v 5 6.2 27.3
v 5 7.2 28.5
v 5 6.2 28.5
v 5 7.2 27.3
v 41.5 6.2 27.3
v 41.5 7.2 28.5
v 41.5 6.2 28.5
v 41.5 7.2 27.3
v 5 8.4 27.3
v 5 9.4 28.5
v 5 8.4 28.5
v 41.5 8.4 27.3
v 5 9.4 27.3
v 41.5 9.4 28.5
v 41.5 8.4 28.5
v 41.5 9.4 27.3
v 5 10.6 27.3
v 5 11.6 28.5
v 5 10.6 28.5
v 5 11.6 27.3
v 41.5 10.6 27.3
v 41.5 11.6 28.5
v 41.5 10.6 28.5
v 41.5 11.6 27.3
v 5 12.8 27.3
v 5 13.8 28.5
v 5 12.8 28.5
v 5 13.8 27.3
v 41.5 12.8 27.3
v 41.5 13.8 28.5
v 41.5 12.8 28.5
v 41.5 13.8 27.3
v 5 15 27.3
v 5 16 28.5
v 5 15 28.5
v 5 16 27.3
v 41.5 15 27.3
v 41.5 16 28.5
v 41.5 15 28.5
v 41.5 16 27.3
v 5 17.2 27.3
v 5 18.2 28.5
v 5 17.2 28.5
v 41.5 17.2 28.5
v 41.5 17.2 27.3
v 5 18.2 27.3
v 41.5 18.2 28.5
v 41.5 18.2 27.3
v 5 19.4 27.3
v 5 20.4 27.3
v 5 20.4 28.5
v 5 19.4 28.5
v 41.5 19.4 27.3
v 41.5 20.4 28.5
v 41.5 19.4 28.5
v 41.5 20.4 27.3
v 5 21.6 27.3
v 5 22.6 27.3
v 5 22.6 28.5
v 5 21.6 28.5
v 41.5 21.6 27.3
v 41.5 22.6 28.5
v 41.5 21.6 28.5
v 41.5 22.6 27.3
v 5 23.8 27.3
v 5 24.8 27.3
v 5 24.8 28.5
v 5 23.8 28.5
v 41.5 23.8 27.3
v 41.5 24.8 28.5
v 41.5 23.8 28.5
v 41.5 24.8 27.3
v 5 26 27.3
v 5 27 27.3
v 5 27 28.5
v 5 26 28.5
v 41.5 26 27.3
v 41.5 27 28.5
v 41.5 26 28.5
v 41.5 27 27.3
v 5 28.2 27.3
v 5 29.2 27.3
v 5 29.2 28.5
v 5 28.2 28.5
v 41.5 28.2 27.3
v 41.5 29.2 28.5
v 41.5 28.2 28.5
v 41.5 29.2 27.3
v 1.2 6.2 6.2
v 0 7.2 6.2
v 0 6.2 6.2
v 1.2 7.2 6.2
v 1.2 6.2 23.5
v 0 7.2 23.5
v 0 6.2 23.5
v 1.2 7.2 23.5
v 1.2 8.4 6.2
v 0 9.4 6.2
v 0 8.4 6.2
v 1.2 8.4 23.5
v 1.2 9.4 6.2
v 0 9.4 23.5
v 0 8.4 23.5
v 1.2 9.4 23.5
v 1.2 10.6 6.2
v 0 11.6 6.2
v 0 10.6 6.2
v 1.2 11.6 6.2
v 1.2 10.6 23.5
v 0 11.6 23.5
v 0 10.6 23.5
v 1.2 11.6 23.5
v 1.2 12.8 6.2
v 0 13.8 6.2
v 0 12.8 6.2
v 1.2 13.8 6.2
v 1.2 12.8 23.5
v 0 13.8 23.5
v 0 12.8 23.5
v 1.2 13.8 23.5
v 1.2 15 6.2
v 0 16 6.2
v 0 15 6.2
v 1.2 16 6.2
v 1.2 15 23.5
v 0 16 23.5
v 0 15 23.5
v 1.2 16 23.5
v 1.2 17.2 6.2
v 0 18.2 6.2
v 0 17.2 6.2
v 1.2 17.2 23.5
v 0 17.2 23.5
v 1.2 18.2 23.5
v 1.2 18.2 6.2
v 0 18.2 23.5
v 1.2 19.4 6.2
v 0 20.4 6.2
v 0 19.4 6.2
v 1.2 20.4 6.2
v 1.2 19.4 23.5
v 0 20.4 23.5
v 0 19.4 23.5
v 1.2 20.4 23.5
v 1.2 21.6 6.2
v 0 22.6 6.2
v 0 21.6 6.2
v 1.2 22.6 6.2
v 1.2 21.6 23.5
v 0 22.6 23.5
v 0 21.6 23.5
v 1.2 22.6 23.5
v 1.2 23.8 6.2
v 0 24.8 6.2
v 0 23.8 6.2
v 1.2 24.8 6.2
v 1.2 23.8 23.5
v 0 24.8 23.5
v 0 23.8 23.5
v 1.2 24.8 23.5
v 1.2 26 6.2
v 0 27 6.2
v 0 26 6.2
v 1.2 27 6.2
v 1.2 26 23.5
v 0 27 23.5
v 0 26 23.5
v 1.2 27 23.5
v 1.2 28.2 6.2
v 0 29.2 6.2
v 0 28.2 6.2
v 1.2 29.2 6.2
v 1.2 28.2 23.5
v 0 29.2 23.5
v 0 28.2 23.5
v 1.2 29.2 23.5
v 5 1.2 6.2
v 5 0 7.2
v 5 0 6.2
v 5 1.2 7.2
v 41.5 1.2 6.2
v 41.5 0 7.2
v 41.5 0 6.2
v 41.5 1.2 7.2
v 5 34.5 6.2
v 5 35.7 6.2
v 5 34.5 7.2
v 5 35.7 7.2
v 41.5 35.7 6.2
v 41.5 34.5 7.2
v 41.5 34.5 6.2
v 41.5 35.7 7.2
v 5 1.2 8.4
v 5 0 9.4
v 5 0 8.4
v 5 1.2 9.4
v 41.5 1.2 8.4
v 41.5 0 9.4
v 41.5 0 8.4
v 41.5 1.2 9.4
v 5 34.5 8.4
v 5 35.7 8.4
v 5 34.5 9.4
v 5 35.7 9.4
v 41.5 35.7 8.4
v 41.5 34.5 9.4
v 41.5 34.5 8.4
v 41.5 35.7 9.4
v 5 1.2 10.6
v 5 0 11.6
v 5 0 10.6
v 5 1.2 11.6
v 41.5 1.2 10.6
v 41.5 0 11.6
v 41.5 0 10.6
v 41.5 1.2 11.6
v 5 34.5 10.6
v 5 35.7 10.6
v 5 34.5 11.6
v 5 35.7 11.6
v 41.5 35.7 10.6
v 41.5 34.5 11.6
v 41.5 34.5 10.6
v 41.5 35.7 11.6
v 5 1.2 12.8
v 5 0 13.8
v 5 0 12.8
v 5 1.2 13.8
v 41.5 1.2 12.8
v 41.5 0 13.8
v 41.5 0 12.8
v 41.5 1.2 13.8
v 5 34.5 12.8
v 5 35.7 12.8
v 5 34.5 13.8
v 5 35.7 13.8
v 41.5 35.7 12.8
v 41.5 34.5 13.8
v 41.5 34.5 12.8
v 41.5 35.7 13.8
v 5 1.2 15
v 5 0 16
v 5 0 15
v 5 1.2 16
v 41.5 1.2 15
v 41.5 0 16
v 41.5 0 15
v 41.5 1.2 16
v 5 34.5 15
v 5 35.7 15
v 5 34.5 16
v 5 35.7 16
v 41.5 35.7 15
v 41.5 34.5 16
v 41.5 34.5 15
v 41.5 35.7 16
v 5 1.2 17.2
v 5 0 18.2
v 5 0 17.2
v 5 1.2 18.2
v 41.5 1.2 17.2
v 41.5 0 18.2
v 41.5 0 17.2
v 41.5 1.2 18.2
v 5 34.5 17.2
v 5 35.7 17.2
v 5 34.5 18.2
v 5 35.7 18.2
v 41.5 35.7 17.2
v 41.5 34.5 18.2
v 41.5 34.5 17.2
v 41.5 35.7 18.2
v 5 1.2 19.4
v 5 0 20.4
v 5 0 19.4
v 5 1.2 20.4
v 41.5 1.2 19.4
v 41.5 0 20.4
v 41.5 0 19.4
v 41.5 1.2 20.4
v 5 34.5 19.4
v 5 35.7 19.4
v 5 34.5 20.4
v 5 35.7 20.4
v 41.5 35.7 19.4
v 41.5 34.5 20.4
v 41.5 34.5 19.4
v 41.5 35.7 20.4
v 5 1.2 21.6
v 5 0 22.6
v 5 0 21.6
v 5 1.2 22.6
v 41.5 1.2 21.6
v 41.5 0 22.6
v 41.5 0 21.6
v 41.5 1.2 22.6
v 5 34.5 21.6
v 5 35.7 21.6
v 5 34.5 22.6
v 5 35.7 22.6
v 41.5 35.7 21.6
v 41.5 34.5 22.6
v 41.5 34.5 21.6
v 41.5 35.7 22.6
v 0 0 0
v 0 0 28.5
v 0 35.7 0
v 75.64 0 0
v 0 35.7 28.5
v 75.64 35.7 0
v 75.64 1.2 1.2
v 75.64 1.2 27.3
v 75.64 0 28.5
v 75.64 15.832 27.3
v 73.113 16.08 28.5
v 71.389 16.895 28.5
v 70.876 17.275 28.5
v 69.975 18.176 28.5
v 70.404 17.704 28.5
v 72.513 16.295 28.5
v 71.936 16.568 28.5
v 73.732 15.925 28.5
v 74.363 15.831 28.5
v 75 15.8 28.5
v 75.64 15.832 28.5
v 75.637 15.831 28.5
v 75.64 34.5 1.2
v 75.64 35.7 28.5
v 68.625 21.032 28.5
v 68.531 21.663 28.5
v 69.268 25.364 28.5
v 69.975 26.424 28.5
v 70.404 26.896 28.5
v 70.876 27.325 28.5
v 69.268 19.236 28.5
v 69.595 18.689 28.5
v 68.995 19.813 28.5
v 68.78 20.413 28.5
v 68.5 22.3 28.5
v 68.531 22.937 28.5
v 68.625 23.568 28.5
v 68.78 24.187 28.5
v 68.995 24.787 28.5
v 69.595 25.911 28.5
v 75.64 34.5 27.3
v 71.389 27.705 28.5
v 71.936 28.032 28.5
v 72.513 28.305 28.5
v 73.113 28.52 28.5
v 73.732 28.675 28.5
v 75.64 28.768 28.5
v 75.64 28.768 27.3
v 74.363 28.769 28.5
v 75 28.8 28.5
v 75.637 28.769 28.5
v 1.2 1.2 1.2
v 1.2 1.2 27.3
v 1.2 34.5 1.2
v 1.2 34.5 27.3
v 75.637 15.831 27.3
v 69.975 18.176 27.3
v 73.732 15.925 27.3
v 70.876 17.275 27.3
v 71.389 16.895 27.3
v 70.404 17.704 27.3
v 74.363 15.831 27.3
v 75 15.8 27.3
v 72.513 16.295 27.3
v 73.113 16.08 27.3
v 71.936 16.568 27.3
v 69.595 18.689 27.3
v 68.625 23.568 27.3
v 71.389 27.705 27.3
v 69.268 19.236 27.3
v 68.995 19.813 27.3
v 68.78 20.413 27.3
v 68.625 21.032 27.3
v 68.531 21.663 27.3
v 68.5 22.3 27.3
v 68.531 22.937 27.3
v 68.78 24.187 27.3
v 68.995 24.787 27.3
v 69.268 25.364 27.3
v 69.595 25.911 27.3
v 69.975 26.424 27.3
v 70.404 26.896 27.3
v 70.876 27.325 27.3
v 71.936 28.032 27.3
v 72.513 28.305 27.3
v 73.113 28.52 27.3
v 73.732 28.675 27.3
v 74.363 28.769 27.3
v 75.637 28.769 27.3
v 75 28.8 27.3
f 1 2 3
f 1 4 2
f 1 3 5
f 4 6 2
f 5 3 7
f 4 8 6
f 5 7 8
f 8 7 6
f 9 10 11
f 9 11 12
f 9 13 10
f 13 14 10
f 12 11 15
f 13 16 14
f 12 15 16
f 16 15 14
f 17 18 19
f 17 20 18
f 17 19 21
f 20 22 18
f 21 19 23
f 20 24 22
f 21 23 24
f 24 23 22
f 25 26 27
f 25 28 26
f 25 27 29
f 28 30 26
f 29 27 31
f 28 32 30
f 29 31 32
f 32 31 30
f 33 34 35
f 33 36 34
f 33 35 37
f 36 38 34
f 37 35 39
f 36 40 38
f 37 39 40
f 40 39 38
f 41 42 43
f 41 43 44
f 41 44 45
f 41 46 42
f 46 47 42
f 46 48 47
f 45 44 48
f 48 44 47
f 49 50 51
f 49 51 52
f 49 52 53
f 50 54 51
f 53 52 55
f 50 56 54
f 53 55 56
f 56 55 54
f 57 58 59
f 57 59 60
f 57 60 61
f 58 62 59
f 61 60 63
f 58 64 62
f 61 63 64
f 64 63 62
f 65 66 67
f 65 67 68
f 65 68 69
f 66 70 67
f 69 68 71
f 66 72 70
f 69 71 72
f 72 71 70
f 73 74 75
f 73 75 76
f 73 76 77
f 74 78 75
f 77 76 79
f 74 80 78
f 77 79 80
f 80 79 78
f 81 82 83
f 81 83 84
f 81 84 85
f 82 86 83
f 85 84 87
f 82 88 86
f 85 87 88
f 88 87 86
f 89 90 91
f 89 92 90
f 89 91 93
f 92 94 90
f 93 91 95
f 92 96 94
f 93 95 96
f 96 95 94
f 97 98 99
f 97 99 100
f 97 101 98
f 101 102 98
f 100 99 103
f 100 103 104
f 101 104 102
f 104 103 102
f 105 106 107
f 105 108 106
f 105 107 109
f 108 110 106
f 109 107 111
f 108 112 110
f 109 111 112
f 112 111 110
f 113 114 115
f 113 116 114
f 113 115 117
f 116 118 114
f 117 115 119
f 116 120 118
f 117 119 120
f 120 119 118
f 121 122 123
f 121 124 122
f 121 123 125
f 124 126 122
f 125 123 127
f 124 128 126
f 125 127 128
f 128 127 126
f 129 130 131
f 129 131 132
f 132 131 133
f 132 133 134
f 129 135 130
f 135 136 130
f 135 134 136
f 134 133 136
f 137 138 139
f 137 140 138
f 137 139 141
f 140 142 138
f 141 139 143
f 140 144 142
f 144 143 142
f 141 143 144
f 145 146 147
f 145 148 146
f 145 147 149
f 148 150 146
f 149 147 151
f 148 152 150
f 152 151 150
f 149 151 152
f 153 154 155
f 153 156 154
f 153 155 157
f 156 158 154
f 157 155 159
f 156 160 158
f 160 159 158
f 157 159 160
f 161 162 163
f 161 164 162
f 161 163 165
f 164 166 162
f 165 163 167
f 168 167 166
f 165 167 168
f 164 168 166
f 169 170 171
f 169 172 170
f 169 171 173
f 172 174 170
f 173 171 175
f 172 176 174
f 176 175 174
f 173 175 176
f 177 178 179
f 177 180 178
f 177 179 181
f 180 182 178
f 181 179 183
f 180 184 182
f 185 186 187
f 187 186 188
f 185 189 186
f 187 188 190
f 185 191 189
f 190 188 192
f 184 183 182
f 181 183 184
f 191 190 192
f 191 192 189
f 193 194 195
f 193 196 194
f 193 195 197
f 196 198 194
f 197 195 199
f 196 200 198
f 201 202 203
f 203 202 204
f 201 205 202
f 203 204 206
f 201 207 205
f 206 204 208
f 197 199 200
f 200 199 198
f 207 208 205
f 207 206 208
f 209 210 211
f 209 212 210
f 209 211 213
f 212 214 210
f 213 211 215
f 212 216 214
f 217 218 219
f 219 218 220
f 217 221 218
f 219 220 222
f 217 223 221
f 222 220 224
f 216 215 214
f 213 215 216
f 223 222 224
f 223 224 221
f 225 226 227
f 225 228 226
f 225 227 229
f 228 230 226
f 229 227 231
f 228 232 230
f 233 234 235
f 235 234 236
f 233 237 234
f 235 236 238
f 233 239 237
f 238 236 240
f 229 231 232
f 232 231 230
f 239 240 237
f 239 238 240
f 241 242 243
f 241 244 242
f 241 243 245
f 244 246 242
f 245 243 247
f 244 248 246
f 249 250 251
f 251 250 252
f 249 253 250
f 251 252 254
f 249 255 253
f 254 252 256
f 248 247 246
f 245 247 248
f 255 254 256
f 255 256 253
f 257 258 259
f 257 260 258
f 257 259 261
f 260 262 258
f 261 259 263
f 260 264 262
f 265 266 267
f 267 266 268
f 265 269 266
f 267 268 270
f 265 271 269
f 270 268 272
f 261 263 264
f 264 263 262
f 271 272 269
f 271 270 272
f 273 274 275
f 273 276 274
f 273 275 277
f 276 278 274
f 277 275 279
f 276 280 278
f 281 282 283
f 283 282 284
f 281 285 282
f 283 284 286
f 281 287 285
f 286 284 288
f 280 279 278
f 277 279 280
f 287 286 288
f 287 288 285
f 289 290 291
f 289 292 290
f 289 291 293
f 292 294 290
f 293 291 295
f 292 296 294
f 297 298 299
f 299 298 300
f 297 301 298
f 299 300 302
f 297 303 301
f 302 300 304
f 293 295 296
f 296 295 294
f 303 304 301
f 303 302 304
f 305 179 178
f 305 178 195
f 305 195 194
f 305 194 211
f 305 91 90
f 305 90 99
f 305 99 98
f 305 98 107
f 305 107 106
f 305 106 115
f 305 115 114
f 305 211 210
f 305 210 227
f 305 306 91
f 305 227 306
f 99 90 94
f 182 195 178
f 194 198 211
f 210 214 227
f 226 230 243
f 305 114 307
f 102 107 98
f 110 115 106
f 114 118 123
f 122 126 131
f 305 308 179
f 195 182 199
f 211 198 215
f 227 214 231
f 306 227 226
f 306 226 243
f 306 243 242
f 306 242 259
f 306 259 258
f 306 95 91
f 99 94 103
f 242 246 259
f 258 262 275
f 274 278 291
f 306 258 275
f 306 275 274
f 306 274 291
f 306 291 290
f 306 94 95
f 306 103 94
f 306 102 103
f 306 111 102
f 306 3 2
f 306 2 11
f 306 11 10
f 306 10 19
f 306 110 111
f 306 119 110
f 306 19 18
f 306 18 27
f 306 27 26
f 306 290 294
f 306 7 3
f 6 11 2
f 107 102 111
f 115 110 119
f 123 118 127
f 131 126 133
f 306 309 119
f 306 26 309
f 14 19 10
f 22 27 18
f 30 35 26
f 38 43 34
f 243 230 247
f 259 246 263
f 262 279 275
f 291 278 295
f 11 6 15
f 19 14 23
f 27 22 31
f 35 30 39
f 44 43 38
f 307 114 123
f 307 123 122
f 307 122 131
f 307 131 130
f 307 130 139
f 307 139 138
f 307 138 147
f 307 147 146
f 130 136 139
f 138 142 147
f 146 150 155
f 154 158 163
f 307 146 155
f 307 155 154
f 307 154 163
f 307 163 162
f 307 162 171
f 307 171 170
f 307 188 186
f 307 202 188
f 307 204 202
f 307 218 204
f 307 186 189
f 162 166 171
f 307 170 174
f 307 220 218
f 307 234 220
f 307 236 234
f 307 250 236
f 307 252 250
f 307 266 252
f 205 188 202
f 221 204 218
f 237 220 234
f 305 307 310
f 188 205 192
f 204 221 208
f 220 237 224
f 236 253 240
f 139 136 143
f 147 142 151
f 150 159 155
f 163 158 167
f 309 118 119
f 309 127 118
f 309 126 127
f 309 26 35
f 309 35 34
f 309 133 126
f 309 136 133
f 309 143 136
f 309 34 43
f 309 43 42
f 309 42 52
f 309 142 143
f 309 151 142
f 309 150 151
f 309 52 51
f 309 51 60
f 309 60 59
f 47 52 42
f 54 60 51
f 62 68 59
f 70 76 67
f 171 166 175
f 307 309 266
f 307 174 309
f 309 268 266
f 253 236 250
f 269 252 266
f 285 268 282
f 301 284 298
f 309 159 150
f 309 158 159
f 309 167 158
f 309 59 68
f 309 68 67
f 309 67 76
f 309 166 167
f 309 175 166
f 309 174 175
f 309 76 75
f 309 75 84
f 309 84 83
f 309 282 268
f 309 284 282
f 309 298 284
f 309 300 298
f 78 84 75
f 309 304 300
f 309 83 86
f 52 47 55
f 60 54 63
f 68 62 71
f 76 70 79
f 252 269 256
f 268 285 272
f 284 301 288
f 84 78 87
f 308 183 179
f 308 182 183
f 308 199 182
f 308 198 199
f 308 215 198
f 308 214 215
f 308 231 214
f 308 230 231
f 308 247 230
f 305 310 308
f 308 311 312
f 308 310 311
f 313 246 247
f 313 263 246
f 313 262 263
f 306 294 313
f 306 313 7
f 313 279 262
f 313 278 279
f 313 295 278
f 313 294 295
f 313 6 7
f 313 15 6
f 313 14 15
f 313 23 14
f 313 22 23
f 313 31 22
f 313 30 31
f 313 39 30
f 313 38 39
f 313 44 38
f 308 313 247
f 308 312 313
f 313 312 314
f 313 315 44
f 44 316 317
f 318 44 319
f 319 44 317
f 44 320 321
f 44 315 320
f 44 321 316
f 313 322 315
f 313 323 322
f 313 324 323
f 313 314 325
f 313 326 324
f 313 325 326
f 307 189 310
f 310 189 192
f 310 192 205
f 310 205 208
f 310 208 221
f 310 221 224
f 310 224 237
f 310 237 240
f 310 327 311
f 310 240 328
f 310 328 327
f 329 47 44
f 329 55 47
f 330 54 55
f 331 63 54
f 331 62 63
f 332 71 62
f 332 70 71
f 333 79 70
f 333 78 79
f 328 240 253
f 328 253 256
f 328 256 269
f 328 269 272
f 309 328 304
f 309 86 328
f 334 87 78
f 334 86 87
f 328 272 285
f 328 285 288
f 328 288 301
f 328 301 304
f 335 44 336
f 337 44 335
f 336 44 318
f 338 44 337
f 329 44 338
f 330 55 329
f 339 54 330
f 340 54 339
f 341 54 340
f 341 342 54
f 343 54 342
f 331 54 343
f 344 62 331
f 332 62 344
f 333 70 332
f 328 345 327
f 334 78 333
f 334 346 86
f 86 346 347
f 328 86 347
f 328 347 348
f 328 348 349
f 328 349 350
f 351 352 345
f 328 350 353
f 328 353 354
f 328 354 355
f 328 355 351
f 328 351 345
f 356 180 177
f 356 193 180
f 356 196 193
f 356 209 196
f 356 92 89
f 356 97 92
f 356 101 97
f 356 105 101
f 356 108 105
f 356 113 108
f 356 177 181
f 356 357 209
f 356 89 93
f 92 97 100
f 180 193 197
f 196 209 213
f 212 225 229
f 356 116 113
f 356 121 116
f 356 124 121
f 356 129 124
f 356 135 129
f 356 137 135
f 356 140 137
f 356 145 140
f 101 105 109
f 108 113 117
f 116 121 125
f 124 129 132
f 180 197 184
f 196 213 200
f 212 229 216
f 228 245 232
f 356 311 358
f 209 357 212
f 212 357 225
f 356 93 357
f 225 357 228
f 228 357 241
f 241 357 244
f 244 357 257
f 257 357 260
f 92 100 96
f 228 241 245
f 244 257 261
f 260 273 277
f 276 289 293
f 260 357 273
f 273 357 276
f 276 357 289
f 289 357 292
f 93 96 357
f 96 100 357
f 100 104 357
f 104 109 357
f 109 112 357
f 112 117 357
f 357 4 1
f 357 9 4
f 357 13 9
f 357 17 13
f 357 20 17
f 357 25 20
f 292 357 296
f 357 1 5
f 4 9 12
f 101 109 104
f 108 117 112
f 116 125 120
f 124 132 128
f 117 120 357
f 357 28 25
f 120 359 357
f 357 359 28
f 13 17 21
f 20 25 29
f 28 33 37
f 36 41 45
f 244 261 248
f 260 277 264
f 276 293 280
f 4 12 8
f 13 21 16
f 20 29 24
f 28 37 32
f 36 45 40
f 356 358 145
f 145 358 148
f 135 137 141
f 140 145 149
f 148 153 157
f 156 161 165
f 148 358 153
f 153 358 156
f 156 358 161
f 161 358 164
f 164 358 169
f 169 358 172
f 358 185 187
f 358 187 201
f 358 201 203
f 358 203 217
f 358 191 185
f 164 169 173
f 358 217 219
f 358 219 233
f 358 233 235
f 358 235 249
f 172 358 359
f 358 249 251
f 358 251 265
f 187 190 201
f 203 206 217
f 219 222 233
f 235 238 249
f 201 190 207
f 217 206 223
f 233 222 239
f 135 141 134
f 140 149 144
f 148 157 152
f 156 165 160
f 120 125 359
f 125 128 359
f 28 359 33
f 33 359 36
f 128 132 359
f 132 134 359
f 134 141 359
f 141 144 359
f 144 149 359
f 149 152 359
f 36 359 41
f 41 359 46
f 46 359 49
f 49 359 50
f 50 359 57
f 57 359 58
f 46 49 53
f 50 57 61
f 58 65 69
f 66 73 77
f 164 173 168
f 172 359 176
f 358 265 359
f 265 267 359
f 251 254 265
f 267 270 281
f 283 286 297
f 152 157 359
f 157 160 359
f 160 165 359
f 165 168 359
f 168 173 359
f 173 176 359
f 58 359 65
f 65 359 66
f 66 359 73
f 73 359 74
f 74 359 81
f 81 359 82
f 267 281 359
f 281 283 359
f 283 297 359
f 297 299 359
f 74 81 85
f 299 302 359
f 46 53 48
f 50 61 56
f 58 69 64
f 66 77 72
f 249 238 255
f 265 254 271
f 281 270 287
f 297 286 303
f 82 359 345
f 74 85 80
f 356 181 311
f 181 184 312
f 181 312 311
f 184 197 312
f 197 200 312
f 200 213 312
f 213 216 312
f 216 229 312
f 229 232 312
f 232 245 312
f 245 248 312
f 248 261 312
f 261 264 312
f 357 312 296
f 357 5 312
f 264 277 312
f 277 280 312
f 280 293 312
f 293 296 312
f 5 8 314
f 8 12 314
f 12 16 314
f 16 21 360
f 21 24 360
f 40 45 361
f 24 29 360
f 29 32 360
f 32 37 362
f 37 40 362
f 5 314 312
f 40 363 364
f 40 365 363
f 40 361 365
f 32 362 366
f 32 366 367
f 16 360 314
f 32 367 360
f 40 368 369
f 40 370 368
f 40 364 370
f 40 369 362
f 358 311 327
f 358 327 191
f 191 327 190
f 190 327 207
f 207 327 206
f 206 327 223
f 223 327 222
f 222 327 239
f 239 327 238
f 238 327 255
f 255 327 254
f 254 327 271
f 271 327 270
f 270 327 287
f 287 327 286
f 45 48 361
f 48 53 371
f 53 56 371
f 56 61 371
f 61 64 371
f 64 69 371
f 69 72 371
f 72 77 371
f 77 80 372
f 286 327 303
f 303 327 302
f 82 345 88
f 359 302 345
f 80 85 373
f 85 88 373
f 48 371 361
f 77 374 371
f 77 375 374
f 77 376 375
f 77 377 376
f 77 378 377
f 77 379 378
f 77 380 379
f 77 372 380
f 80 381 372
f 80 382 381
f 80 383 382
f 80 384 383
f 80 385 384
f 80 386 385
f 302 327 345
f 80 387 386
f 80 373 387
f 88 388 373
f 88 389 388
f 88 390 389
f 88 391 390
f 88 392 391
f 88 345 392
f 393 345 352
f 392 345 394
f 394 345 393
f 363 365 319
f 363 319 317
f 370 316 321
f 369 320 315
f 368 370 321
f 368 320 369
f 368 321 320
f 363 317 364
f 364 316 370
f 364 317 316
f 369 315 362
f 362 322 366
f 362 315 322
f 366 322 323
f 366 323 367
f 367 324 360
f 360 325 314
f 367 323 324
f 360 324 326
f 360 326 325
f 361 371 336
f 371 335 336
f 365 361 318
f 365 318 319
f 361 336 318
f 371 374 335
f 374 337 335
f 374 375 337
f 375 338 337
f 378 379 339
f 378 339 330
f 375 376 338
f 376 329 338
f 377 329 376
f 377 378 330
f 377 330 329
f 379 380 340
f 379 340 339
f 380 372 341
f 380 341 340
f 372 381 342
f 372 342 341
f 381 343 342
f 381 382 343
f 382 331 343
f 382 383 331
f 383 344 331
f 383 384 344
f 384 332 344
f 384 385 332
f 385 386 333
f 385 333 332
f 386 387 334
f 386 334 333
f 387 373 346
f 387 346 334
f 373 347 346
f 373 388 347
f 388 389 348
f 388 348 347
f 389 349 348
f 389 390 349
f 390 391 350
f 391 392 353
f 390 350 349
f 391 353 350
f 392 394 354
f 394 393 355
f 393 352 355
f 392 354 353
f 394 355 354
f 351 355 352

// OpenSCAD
wall = 1.2;
height = 26.1;
width = 33.3;
length = 36.5 * 2;
shift = 5;
$fn = 64;

difference() {
  cube([length + wall * 2.2, width + wall * 2, height + wall * 2]);
  translate([wall, wall, wall]) cube([length * 2, width, height]);

  for (x = [wall + shift:2.2:width - shift]) {
    translate([shift, x, shift]) cube([length / 2, 1, 90]);
  }

  for (x = [wall + shift:2.2:width - shift]) {
    translate([-shift, x, shift + wall]) cube([length / 2 + wall + shift, 1, height - shift * 2 + wall]);
  }

  for (x = [shift:2.2:height - shift]) {
    translate([shift, -wall, x + wall]) cube([length / 2, width * 2, 1]);
  }

  hull() {
    translate([length + 2, width - 11, wall]) cylinder(h=height * 2, d=13);
  }
}
